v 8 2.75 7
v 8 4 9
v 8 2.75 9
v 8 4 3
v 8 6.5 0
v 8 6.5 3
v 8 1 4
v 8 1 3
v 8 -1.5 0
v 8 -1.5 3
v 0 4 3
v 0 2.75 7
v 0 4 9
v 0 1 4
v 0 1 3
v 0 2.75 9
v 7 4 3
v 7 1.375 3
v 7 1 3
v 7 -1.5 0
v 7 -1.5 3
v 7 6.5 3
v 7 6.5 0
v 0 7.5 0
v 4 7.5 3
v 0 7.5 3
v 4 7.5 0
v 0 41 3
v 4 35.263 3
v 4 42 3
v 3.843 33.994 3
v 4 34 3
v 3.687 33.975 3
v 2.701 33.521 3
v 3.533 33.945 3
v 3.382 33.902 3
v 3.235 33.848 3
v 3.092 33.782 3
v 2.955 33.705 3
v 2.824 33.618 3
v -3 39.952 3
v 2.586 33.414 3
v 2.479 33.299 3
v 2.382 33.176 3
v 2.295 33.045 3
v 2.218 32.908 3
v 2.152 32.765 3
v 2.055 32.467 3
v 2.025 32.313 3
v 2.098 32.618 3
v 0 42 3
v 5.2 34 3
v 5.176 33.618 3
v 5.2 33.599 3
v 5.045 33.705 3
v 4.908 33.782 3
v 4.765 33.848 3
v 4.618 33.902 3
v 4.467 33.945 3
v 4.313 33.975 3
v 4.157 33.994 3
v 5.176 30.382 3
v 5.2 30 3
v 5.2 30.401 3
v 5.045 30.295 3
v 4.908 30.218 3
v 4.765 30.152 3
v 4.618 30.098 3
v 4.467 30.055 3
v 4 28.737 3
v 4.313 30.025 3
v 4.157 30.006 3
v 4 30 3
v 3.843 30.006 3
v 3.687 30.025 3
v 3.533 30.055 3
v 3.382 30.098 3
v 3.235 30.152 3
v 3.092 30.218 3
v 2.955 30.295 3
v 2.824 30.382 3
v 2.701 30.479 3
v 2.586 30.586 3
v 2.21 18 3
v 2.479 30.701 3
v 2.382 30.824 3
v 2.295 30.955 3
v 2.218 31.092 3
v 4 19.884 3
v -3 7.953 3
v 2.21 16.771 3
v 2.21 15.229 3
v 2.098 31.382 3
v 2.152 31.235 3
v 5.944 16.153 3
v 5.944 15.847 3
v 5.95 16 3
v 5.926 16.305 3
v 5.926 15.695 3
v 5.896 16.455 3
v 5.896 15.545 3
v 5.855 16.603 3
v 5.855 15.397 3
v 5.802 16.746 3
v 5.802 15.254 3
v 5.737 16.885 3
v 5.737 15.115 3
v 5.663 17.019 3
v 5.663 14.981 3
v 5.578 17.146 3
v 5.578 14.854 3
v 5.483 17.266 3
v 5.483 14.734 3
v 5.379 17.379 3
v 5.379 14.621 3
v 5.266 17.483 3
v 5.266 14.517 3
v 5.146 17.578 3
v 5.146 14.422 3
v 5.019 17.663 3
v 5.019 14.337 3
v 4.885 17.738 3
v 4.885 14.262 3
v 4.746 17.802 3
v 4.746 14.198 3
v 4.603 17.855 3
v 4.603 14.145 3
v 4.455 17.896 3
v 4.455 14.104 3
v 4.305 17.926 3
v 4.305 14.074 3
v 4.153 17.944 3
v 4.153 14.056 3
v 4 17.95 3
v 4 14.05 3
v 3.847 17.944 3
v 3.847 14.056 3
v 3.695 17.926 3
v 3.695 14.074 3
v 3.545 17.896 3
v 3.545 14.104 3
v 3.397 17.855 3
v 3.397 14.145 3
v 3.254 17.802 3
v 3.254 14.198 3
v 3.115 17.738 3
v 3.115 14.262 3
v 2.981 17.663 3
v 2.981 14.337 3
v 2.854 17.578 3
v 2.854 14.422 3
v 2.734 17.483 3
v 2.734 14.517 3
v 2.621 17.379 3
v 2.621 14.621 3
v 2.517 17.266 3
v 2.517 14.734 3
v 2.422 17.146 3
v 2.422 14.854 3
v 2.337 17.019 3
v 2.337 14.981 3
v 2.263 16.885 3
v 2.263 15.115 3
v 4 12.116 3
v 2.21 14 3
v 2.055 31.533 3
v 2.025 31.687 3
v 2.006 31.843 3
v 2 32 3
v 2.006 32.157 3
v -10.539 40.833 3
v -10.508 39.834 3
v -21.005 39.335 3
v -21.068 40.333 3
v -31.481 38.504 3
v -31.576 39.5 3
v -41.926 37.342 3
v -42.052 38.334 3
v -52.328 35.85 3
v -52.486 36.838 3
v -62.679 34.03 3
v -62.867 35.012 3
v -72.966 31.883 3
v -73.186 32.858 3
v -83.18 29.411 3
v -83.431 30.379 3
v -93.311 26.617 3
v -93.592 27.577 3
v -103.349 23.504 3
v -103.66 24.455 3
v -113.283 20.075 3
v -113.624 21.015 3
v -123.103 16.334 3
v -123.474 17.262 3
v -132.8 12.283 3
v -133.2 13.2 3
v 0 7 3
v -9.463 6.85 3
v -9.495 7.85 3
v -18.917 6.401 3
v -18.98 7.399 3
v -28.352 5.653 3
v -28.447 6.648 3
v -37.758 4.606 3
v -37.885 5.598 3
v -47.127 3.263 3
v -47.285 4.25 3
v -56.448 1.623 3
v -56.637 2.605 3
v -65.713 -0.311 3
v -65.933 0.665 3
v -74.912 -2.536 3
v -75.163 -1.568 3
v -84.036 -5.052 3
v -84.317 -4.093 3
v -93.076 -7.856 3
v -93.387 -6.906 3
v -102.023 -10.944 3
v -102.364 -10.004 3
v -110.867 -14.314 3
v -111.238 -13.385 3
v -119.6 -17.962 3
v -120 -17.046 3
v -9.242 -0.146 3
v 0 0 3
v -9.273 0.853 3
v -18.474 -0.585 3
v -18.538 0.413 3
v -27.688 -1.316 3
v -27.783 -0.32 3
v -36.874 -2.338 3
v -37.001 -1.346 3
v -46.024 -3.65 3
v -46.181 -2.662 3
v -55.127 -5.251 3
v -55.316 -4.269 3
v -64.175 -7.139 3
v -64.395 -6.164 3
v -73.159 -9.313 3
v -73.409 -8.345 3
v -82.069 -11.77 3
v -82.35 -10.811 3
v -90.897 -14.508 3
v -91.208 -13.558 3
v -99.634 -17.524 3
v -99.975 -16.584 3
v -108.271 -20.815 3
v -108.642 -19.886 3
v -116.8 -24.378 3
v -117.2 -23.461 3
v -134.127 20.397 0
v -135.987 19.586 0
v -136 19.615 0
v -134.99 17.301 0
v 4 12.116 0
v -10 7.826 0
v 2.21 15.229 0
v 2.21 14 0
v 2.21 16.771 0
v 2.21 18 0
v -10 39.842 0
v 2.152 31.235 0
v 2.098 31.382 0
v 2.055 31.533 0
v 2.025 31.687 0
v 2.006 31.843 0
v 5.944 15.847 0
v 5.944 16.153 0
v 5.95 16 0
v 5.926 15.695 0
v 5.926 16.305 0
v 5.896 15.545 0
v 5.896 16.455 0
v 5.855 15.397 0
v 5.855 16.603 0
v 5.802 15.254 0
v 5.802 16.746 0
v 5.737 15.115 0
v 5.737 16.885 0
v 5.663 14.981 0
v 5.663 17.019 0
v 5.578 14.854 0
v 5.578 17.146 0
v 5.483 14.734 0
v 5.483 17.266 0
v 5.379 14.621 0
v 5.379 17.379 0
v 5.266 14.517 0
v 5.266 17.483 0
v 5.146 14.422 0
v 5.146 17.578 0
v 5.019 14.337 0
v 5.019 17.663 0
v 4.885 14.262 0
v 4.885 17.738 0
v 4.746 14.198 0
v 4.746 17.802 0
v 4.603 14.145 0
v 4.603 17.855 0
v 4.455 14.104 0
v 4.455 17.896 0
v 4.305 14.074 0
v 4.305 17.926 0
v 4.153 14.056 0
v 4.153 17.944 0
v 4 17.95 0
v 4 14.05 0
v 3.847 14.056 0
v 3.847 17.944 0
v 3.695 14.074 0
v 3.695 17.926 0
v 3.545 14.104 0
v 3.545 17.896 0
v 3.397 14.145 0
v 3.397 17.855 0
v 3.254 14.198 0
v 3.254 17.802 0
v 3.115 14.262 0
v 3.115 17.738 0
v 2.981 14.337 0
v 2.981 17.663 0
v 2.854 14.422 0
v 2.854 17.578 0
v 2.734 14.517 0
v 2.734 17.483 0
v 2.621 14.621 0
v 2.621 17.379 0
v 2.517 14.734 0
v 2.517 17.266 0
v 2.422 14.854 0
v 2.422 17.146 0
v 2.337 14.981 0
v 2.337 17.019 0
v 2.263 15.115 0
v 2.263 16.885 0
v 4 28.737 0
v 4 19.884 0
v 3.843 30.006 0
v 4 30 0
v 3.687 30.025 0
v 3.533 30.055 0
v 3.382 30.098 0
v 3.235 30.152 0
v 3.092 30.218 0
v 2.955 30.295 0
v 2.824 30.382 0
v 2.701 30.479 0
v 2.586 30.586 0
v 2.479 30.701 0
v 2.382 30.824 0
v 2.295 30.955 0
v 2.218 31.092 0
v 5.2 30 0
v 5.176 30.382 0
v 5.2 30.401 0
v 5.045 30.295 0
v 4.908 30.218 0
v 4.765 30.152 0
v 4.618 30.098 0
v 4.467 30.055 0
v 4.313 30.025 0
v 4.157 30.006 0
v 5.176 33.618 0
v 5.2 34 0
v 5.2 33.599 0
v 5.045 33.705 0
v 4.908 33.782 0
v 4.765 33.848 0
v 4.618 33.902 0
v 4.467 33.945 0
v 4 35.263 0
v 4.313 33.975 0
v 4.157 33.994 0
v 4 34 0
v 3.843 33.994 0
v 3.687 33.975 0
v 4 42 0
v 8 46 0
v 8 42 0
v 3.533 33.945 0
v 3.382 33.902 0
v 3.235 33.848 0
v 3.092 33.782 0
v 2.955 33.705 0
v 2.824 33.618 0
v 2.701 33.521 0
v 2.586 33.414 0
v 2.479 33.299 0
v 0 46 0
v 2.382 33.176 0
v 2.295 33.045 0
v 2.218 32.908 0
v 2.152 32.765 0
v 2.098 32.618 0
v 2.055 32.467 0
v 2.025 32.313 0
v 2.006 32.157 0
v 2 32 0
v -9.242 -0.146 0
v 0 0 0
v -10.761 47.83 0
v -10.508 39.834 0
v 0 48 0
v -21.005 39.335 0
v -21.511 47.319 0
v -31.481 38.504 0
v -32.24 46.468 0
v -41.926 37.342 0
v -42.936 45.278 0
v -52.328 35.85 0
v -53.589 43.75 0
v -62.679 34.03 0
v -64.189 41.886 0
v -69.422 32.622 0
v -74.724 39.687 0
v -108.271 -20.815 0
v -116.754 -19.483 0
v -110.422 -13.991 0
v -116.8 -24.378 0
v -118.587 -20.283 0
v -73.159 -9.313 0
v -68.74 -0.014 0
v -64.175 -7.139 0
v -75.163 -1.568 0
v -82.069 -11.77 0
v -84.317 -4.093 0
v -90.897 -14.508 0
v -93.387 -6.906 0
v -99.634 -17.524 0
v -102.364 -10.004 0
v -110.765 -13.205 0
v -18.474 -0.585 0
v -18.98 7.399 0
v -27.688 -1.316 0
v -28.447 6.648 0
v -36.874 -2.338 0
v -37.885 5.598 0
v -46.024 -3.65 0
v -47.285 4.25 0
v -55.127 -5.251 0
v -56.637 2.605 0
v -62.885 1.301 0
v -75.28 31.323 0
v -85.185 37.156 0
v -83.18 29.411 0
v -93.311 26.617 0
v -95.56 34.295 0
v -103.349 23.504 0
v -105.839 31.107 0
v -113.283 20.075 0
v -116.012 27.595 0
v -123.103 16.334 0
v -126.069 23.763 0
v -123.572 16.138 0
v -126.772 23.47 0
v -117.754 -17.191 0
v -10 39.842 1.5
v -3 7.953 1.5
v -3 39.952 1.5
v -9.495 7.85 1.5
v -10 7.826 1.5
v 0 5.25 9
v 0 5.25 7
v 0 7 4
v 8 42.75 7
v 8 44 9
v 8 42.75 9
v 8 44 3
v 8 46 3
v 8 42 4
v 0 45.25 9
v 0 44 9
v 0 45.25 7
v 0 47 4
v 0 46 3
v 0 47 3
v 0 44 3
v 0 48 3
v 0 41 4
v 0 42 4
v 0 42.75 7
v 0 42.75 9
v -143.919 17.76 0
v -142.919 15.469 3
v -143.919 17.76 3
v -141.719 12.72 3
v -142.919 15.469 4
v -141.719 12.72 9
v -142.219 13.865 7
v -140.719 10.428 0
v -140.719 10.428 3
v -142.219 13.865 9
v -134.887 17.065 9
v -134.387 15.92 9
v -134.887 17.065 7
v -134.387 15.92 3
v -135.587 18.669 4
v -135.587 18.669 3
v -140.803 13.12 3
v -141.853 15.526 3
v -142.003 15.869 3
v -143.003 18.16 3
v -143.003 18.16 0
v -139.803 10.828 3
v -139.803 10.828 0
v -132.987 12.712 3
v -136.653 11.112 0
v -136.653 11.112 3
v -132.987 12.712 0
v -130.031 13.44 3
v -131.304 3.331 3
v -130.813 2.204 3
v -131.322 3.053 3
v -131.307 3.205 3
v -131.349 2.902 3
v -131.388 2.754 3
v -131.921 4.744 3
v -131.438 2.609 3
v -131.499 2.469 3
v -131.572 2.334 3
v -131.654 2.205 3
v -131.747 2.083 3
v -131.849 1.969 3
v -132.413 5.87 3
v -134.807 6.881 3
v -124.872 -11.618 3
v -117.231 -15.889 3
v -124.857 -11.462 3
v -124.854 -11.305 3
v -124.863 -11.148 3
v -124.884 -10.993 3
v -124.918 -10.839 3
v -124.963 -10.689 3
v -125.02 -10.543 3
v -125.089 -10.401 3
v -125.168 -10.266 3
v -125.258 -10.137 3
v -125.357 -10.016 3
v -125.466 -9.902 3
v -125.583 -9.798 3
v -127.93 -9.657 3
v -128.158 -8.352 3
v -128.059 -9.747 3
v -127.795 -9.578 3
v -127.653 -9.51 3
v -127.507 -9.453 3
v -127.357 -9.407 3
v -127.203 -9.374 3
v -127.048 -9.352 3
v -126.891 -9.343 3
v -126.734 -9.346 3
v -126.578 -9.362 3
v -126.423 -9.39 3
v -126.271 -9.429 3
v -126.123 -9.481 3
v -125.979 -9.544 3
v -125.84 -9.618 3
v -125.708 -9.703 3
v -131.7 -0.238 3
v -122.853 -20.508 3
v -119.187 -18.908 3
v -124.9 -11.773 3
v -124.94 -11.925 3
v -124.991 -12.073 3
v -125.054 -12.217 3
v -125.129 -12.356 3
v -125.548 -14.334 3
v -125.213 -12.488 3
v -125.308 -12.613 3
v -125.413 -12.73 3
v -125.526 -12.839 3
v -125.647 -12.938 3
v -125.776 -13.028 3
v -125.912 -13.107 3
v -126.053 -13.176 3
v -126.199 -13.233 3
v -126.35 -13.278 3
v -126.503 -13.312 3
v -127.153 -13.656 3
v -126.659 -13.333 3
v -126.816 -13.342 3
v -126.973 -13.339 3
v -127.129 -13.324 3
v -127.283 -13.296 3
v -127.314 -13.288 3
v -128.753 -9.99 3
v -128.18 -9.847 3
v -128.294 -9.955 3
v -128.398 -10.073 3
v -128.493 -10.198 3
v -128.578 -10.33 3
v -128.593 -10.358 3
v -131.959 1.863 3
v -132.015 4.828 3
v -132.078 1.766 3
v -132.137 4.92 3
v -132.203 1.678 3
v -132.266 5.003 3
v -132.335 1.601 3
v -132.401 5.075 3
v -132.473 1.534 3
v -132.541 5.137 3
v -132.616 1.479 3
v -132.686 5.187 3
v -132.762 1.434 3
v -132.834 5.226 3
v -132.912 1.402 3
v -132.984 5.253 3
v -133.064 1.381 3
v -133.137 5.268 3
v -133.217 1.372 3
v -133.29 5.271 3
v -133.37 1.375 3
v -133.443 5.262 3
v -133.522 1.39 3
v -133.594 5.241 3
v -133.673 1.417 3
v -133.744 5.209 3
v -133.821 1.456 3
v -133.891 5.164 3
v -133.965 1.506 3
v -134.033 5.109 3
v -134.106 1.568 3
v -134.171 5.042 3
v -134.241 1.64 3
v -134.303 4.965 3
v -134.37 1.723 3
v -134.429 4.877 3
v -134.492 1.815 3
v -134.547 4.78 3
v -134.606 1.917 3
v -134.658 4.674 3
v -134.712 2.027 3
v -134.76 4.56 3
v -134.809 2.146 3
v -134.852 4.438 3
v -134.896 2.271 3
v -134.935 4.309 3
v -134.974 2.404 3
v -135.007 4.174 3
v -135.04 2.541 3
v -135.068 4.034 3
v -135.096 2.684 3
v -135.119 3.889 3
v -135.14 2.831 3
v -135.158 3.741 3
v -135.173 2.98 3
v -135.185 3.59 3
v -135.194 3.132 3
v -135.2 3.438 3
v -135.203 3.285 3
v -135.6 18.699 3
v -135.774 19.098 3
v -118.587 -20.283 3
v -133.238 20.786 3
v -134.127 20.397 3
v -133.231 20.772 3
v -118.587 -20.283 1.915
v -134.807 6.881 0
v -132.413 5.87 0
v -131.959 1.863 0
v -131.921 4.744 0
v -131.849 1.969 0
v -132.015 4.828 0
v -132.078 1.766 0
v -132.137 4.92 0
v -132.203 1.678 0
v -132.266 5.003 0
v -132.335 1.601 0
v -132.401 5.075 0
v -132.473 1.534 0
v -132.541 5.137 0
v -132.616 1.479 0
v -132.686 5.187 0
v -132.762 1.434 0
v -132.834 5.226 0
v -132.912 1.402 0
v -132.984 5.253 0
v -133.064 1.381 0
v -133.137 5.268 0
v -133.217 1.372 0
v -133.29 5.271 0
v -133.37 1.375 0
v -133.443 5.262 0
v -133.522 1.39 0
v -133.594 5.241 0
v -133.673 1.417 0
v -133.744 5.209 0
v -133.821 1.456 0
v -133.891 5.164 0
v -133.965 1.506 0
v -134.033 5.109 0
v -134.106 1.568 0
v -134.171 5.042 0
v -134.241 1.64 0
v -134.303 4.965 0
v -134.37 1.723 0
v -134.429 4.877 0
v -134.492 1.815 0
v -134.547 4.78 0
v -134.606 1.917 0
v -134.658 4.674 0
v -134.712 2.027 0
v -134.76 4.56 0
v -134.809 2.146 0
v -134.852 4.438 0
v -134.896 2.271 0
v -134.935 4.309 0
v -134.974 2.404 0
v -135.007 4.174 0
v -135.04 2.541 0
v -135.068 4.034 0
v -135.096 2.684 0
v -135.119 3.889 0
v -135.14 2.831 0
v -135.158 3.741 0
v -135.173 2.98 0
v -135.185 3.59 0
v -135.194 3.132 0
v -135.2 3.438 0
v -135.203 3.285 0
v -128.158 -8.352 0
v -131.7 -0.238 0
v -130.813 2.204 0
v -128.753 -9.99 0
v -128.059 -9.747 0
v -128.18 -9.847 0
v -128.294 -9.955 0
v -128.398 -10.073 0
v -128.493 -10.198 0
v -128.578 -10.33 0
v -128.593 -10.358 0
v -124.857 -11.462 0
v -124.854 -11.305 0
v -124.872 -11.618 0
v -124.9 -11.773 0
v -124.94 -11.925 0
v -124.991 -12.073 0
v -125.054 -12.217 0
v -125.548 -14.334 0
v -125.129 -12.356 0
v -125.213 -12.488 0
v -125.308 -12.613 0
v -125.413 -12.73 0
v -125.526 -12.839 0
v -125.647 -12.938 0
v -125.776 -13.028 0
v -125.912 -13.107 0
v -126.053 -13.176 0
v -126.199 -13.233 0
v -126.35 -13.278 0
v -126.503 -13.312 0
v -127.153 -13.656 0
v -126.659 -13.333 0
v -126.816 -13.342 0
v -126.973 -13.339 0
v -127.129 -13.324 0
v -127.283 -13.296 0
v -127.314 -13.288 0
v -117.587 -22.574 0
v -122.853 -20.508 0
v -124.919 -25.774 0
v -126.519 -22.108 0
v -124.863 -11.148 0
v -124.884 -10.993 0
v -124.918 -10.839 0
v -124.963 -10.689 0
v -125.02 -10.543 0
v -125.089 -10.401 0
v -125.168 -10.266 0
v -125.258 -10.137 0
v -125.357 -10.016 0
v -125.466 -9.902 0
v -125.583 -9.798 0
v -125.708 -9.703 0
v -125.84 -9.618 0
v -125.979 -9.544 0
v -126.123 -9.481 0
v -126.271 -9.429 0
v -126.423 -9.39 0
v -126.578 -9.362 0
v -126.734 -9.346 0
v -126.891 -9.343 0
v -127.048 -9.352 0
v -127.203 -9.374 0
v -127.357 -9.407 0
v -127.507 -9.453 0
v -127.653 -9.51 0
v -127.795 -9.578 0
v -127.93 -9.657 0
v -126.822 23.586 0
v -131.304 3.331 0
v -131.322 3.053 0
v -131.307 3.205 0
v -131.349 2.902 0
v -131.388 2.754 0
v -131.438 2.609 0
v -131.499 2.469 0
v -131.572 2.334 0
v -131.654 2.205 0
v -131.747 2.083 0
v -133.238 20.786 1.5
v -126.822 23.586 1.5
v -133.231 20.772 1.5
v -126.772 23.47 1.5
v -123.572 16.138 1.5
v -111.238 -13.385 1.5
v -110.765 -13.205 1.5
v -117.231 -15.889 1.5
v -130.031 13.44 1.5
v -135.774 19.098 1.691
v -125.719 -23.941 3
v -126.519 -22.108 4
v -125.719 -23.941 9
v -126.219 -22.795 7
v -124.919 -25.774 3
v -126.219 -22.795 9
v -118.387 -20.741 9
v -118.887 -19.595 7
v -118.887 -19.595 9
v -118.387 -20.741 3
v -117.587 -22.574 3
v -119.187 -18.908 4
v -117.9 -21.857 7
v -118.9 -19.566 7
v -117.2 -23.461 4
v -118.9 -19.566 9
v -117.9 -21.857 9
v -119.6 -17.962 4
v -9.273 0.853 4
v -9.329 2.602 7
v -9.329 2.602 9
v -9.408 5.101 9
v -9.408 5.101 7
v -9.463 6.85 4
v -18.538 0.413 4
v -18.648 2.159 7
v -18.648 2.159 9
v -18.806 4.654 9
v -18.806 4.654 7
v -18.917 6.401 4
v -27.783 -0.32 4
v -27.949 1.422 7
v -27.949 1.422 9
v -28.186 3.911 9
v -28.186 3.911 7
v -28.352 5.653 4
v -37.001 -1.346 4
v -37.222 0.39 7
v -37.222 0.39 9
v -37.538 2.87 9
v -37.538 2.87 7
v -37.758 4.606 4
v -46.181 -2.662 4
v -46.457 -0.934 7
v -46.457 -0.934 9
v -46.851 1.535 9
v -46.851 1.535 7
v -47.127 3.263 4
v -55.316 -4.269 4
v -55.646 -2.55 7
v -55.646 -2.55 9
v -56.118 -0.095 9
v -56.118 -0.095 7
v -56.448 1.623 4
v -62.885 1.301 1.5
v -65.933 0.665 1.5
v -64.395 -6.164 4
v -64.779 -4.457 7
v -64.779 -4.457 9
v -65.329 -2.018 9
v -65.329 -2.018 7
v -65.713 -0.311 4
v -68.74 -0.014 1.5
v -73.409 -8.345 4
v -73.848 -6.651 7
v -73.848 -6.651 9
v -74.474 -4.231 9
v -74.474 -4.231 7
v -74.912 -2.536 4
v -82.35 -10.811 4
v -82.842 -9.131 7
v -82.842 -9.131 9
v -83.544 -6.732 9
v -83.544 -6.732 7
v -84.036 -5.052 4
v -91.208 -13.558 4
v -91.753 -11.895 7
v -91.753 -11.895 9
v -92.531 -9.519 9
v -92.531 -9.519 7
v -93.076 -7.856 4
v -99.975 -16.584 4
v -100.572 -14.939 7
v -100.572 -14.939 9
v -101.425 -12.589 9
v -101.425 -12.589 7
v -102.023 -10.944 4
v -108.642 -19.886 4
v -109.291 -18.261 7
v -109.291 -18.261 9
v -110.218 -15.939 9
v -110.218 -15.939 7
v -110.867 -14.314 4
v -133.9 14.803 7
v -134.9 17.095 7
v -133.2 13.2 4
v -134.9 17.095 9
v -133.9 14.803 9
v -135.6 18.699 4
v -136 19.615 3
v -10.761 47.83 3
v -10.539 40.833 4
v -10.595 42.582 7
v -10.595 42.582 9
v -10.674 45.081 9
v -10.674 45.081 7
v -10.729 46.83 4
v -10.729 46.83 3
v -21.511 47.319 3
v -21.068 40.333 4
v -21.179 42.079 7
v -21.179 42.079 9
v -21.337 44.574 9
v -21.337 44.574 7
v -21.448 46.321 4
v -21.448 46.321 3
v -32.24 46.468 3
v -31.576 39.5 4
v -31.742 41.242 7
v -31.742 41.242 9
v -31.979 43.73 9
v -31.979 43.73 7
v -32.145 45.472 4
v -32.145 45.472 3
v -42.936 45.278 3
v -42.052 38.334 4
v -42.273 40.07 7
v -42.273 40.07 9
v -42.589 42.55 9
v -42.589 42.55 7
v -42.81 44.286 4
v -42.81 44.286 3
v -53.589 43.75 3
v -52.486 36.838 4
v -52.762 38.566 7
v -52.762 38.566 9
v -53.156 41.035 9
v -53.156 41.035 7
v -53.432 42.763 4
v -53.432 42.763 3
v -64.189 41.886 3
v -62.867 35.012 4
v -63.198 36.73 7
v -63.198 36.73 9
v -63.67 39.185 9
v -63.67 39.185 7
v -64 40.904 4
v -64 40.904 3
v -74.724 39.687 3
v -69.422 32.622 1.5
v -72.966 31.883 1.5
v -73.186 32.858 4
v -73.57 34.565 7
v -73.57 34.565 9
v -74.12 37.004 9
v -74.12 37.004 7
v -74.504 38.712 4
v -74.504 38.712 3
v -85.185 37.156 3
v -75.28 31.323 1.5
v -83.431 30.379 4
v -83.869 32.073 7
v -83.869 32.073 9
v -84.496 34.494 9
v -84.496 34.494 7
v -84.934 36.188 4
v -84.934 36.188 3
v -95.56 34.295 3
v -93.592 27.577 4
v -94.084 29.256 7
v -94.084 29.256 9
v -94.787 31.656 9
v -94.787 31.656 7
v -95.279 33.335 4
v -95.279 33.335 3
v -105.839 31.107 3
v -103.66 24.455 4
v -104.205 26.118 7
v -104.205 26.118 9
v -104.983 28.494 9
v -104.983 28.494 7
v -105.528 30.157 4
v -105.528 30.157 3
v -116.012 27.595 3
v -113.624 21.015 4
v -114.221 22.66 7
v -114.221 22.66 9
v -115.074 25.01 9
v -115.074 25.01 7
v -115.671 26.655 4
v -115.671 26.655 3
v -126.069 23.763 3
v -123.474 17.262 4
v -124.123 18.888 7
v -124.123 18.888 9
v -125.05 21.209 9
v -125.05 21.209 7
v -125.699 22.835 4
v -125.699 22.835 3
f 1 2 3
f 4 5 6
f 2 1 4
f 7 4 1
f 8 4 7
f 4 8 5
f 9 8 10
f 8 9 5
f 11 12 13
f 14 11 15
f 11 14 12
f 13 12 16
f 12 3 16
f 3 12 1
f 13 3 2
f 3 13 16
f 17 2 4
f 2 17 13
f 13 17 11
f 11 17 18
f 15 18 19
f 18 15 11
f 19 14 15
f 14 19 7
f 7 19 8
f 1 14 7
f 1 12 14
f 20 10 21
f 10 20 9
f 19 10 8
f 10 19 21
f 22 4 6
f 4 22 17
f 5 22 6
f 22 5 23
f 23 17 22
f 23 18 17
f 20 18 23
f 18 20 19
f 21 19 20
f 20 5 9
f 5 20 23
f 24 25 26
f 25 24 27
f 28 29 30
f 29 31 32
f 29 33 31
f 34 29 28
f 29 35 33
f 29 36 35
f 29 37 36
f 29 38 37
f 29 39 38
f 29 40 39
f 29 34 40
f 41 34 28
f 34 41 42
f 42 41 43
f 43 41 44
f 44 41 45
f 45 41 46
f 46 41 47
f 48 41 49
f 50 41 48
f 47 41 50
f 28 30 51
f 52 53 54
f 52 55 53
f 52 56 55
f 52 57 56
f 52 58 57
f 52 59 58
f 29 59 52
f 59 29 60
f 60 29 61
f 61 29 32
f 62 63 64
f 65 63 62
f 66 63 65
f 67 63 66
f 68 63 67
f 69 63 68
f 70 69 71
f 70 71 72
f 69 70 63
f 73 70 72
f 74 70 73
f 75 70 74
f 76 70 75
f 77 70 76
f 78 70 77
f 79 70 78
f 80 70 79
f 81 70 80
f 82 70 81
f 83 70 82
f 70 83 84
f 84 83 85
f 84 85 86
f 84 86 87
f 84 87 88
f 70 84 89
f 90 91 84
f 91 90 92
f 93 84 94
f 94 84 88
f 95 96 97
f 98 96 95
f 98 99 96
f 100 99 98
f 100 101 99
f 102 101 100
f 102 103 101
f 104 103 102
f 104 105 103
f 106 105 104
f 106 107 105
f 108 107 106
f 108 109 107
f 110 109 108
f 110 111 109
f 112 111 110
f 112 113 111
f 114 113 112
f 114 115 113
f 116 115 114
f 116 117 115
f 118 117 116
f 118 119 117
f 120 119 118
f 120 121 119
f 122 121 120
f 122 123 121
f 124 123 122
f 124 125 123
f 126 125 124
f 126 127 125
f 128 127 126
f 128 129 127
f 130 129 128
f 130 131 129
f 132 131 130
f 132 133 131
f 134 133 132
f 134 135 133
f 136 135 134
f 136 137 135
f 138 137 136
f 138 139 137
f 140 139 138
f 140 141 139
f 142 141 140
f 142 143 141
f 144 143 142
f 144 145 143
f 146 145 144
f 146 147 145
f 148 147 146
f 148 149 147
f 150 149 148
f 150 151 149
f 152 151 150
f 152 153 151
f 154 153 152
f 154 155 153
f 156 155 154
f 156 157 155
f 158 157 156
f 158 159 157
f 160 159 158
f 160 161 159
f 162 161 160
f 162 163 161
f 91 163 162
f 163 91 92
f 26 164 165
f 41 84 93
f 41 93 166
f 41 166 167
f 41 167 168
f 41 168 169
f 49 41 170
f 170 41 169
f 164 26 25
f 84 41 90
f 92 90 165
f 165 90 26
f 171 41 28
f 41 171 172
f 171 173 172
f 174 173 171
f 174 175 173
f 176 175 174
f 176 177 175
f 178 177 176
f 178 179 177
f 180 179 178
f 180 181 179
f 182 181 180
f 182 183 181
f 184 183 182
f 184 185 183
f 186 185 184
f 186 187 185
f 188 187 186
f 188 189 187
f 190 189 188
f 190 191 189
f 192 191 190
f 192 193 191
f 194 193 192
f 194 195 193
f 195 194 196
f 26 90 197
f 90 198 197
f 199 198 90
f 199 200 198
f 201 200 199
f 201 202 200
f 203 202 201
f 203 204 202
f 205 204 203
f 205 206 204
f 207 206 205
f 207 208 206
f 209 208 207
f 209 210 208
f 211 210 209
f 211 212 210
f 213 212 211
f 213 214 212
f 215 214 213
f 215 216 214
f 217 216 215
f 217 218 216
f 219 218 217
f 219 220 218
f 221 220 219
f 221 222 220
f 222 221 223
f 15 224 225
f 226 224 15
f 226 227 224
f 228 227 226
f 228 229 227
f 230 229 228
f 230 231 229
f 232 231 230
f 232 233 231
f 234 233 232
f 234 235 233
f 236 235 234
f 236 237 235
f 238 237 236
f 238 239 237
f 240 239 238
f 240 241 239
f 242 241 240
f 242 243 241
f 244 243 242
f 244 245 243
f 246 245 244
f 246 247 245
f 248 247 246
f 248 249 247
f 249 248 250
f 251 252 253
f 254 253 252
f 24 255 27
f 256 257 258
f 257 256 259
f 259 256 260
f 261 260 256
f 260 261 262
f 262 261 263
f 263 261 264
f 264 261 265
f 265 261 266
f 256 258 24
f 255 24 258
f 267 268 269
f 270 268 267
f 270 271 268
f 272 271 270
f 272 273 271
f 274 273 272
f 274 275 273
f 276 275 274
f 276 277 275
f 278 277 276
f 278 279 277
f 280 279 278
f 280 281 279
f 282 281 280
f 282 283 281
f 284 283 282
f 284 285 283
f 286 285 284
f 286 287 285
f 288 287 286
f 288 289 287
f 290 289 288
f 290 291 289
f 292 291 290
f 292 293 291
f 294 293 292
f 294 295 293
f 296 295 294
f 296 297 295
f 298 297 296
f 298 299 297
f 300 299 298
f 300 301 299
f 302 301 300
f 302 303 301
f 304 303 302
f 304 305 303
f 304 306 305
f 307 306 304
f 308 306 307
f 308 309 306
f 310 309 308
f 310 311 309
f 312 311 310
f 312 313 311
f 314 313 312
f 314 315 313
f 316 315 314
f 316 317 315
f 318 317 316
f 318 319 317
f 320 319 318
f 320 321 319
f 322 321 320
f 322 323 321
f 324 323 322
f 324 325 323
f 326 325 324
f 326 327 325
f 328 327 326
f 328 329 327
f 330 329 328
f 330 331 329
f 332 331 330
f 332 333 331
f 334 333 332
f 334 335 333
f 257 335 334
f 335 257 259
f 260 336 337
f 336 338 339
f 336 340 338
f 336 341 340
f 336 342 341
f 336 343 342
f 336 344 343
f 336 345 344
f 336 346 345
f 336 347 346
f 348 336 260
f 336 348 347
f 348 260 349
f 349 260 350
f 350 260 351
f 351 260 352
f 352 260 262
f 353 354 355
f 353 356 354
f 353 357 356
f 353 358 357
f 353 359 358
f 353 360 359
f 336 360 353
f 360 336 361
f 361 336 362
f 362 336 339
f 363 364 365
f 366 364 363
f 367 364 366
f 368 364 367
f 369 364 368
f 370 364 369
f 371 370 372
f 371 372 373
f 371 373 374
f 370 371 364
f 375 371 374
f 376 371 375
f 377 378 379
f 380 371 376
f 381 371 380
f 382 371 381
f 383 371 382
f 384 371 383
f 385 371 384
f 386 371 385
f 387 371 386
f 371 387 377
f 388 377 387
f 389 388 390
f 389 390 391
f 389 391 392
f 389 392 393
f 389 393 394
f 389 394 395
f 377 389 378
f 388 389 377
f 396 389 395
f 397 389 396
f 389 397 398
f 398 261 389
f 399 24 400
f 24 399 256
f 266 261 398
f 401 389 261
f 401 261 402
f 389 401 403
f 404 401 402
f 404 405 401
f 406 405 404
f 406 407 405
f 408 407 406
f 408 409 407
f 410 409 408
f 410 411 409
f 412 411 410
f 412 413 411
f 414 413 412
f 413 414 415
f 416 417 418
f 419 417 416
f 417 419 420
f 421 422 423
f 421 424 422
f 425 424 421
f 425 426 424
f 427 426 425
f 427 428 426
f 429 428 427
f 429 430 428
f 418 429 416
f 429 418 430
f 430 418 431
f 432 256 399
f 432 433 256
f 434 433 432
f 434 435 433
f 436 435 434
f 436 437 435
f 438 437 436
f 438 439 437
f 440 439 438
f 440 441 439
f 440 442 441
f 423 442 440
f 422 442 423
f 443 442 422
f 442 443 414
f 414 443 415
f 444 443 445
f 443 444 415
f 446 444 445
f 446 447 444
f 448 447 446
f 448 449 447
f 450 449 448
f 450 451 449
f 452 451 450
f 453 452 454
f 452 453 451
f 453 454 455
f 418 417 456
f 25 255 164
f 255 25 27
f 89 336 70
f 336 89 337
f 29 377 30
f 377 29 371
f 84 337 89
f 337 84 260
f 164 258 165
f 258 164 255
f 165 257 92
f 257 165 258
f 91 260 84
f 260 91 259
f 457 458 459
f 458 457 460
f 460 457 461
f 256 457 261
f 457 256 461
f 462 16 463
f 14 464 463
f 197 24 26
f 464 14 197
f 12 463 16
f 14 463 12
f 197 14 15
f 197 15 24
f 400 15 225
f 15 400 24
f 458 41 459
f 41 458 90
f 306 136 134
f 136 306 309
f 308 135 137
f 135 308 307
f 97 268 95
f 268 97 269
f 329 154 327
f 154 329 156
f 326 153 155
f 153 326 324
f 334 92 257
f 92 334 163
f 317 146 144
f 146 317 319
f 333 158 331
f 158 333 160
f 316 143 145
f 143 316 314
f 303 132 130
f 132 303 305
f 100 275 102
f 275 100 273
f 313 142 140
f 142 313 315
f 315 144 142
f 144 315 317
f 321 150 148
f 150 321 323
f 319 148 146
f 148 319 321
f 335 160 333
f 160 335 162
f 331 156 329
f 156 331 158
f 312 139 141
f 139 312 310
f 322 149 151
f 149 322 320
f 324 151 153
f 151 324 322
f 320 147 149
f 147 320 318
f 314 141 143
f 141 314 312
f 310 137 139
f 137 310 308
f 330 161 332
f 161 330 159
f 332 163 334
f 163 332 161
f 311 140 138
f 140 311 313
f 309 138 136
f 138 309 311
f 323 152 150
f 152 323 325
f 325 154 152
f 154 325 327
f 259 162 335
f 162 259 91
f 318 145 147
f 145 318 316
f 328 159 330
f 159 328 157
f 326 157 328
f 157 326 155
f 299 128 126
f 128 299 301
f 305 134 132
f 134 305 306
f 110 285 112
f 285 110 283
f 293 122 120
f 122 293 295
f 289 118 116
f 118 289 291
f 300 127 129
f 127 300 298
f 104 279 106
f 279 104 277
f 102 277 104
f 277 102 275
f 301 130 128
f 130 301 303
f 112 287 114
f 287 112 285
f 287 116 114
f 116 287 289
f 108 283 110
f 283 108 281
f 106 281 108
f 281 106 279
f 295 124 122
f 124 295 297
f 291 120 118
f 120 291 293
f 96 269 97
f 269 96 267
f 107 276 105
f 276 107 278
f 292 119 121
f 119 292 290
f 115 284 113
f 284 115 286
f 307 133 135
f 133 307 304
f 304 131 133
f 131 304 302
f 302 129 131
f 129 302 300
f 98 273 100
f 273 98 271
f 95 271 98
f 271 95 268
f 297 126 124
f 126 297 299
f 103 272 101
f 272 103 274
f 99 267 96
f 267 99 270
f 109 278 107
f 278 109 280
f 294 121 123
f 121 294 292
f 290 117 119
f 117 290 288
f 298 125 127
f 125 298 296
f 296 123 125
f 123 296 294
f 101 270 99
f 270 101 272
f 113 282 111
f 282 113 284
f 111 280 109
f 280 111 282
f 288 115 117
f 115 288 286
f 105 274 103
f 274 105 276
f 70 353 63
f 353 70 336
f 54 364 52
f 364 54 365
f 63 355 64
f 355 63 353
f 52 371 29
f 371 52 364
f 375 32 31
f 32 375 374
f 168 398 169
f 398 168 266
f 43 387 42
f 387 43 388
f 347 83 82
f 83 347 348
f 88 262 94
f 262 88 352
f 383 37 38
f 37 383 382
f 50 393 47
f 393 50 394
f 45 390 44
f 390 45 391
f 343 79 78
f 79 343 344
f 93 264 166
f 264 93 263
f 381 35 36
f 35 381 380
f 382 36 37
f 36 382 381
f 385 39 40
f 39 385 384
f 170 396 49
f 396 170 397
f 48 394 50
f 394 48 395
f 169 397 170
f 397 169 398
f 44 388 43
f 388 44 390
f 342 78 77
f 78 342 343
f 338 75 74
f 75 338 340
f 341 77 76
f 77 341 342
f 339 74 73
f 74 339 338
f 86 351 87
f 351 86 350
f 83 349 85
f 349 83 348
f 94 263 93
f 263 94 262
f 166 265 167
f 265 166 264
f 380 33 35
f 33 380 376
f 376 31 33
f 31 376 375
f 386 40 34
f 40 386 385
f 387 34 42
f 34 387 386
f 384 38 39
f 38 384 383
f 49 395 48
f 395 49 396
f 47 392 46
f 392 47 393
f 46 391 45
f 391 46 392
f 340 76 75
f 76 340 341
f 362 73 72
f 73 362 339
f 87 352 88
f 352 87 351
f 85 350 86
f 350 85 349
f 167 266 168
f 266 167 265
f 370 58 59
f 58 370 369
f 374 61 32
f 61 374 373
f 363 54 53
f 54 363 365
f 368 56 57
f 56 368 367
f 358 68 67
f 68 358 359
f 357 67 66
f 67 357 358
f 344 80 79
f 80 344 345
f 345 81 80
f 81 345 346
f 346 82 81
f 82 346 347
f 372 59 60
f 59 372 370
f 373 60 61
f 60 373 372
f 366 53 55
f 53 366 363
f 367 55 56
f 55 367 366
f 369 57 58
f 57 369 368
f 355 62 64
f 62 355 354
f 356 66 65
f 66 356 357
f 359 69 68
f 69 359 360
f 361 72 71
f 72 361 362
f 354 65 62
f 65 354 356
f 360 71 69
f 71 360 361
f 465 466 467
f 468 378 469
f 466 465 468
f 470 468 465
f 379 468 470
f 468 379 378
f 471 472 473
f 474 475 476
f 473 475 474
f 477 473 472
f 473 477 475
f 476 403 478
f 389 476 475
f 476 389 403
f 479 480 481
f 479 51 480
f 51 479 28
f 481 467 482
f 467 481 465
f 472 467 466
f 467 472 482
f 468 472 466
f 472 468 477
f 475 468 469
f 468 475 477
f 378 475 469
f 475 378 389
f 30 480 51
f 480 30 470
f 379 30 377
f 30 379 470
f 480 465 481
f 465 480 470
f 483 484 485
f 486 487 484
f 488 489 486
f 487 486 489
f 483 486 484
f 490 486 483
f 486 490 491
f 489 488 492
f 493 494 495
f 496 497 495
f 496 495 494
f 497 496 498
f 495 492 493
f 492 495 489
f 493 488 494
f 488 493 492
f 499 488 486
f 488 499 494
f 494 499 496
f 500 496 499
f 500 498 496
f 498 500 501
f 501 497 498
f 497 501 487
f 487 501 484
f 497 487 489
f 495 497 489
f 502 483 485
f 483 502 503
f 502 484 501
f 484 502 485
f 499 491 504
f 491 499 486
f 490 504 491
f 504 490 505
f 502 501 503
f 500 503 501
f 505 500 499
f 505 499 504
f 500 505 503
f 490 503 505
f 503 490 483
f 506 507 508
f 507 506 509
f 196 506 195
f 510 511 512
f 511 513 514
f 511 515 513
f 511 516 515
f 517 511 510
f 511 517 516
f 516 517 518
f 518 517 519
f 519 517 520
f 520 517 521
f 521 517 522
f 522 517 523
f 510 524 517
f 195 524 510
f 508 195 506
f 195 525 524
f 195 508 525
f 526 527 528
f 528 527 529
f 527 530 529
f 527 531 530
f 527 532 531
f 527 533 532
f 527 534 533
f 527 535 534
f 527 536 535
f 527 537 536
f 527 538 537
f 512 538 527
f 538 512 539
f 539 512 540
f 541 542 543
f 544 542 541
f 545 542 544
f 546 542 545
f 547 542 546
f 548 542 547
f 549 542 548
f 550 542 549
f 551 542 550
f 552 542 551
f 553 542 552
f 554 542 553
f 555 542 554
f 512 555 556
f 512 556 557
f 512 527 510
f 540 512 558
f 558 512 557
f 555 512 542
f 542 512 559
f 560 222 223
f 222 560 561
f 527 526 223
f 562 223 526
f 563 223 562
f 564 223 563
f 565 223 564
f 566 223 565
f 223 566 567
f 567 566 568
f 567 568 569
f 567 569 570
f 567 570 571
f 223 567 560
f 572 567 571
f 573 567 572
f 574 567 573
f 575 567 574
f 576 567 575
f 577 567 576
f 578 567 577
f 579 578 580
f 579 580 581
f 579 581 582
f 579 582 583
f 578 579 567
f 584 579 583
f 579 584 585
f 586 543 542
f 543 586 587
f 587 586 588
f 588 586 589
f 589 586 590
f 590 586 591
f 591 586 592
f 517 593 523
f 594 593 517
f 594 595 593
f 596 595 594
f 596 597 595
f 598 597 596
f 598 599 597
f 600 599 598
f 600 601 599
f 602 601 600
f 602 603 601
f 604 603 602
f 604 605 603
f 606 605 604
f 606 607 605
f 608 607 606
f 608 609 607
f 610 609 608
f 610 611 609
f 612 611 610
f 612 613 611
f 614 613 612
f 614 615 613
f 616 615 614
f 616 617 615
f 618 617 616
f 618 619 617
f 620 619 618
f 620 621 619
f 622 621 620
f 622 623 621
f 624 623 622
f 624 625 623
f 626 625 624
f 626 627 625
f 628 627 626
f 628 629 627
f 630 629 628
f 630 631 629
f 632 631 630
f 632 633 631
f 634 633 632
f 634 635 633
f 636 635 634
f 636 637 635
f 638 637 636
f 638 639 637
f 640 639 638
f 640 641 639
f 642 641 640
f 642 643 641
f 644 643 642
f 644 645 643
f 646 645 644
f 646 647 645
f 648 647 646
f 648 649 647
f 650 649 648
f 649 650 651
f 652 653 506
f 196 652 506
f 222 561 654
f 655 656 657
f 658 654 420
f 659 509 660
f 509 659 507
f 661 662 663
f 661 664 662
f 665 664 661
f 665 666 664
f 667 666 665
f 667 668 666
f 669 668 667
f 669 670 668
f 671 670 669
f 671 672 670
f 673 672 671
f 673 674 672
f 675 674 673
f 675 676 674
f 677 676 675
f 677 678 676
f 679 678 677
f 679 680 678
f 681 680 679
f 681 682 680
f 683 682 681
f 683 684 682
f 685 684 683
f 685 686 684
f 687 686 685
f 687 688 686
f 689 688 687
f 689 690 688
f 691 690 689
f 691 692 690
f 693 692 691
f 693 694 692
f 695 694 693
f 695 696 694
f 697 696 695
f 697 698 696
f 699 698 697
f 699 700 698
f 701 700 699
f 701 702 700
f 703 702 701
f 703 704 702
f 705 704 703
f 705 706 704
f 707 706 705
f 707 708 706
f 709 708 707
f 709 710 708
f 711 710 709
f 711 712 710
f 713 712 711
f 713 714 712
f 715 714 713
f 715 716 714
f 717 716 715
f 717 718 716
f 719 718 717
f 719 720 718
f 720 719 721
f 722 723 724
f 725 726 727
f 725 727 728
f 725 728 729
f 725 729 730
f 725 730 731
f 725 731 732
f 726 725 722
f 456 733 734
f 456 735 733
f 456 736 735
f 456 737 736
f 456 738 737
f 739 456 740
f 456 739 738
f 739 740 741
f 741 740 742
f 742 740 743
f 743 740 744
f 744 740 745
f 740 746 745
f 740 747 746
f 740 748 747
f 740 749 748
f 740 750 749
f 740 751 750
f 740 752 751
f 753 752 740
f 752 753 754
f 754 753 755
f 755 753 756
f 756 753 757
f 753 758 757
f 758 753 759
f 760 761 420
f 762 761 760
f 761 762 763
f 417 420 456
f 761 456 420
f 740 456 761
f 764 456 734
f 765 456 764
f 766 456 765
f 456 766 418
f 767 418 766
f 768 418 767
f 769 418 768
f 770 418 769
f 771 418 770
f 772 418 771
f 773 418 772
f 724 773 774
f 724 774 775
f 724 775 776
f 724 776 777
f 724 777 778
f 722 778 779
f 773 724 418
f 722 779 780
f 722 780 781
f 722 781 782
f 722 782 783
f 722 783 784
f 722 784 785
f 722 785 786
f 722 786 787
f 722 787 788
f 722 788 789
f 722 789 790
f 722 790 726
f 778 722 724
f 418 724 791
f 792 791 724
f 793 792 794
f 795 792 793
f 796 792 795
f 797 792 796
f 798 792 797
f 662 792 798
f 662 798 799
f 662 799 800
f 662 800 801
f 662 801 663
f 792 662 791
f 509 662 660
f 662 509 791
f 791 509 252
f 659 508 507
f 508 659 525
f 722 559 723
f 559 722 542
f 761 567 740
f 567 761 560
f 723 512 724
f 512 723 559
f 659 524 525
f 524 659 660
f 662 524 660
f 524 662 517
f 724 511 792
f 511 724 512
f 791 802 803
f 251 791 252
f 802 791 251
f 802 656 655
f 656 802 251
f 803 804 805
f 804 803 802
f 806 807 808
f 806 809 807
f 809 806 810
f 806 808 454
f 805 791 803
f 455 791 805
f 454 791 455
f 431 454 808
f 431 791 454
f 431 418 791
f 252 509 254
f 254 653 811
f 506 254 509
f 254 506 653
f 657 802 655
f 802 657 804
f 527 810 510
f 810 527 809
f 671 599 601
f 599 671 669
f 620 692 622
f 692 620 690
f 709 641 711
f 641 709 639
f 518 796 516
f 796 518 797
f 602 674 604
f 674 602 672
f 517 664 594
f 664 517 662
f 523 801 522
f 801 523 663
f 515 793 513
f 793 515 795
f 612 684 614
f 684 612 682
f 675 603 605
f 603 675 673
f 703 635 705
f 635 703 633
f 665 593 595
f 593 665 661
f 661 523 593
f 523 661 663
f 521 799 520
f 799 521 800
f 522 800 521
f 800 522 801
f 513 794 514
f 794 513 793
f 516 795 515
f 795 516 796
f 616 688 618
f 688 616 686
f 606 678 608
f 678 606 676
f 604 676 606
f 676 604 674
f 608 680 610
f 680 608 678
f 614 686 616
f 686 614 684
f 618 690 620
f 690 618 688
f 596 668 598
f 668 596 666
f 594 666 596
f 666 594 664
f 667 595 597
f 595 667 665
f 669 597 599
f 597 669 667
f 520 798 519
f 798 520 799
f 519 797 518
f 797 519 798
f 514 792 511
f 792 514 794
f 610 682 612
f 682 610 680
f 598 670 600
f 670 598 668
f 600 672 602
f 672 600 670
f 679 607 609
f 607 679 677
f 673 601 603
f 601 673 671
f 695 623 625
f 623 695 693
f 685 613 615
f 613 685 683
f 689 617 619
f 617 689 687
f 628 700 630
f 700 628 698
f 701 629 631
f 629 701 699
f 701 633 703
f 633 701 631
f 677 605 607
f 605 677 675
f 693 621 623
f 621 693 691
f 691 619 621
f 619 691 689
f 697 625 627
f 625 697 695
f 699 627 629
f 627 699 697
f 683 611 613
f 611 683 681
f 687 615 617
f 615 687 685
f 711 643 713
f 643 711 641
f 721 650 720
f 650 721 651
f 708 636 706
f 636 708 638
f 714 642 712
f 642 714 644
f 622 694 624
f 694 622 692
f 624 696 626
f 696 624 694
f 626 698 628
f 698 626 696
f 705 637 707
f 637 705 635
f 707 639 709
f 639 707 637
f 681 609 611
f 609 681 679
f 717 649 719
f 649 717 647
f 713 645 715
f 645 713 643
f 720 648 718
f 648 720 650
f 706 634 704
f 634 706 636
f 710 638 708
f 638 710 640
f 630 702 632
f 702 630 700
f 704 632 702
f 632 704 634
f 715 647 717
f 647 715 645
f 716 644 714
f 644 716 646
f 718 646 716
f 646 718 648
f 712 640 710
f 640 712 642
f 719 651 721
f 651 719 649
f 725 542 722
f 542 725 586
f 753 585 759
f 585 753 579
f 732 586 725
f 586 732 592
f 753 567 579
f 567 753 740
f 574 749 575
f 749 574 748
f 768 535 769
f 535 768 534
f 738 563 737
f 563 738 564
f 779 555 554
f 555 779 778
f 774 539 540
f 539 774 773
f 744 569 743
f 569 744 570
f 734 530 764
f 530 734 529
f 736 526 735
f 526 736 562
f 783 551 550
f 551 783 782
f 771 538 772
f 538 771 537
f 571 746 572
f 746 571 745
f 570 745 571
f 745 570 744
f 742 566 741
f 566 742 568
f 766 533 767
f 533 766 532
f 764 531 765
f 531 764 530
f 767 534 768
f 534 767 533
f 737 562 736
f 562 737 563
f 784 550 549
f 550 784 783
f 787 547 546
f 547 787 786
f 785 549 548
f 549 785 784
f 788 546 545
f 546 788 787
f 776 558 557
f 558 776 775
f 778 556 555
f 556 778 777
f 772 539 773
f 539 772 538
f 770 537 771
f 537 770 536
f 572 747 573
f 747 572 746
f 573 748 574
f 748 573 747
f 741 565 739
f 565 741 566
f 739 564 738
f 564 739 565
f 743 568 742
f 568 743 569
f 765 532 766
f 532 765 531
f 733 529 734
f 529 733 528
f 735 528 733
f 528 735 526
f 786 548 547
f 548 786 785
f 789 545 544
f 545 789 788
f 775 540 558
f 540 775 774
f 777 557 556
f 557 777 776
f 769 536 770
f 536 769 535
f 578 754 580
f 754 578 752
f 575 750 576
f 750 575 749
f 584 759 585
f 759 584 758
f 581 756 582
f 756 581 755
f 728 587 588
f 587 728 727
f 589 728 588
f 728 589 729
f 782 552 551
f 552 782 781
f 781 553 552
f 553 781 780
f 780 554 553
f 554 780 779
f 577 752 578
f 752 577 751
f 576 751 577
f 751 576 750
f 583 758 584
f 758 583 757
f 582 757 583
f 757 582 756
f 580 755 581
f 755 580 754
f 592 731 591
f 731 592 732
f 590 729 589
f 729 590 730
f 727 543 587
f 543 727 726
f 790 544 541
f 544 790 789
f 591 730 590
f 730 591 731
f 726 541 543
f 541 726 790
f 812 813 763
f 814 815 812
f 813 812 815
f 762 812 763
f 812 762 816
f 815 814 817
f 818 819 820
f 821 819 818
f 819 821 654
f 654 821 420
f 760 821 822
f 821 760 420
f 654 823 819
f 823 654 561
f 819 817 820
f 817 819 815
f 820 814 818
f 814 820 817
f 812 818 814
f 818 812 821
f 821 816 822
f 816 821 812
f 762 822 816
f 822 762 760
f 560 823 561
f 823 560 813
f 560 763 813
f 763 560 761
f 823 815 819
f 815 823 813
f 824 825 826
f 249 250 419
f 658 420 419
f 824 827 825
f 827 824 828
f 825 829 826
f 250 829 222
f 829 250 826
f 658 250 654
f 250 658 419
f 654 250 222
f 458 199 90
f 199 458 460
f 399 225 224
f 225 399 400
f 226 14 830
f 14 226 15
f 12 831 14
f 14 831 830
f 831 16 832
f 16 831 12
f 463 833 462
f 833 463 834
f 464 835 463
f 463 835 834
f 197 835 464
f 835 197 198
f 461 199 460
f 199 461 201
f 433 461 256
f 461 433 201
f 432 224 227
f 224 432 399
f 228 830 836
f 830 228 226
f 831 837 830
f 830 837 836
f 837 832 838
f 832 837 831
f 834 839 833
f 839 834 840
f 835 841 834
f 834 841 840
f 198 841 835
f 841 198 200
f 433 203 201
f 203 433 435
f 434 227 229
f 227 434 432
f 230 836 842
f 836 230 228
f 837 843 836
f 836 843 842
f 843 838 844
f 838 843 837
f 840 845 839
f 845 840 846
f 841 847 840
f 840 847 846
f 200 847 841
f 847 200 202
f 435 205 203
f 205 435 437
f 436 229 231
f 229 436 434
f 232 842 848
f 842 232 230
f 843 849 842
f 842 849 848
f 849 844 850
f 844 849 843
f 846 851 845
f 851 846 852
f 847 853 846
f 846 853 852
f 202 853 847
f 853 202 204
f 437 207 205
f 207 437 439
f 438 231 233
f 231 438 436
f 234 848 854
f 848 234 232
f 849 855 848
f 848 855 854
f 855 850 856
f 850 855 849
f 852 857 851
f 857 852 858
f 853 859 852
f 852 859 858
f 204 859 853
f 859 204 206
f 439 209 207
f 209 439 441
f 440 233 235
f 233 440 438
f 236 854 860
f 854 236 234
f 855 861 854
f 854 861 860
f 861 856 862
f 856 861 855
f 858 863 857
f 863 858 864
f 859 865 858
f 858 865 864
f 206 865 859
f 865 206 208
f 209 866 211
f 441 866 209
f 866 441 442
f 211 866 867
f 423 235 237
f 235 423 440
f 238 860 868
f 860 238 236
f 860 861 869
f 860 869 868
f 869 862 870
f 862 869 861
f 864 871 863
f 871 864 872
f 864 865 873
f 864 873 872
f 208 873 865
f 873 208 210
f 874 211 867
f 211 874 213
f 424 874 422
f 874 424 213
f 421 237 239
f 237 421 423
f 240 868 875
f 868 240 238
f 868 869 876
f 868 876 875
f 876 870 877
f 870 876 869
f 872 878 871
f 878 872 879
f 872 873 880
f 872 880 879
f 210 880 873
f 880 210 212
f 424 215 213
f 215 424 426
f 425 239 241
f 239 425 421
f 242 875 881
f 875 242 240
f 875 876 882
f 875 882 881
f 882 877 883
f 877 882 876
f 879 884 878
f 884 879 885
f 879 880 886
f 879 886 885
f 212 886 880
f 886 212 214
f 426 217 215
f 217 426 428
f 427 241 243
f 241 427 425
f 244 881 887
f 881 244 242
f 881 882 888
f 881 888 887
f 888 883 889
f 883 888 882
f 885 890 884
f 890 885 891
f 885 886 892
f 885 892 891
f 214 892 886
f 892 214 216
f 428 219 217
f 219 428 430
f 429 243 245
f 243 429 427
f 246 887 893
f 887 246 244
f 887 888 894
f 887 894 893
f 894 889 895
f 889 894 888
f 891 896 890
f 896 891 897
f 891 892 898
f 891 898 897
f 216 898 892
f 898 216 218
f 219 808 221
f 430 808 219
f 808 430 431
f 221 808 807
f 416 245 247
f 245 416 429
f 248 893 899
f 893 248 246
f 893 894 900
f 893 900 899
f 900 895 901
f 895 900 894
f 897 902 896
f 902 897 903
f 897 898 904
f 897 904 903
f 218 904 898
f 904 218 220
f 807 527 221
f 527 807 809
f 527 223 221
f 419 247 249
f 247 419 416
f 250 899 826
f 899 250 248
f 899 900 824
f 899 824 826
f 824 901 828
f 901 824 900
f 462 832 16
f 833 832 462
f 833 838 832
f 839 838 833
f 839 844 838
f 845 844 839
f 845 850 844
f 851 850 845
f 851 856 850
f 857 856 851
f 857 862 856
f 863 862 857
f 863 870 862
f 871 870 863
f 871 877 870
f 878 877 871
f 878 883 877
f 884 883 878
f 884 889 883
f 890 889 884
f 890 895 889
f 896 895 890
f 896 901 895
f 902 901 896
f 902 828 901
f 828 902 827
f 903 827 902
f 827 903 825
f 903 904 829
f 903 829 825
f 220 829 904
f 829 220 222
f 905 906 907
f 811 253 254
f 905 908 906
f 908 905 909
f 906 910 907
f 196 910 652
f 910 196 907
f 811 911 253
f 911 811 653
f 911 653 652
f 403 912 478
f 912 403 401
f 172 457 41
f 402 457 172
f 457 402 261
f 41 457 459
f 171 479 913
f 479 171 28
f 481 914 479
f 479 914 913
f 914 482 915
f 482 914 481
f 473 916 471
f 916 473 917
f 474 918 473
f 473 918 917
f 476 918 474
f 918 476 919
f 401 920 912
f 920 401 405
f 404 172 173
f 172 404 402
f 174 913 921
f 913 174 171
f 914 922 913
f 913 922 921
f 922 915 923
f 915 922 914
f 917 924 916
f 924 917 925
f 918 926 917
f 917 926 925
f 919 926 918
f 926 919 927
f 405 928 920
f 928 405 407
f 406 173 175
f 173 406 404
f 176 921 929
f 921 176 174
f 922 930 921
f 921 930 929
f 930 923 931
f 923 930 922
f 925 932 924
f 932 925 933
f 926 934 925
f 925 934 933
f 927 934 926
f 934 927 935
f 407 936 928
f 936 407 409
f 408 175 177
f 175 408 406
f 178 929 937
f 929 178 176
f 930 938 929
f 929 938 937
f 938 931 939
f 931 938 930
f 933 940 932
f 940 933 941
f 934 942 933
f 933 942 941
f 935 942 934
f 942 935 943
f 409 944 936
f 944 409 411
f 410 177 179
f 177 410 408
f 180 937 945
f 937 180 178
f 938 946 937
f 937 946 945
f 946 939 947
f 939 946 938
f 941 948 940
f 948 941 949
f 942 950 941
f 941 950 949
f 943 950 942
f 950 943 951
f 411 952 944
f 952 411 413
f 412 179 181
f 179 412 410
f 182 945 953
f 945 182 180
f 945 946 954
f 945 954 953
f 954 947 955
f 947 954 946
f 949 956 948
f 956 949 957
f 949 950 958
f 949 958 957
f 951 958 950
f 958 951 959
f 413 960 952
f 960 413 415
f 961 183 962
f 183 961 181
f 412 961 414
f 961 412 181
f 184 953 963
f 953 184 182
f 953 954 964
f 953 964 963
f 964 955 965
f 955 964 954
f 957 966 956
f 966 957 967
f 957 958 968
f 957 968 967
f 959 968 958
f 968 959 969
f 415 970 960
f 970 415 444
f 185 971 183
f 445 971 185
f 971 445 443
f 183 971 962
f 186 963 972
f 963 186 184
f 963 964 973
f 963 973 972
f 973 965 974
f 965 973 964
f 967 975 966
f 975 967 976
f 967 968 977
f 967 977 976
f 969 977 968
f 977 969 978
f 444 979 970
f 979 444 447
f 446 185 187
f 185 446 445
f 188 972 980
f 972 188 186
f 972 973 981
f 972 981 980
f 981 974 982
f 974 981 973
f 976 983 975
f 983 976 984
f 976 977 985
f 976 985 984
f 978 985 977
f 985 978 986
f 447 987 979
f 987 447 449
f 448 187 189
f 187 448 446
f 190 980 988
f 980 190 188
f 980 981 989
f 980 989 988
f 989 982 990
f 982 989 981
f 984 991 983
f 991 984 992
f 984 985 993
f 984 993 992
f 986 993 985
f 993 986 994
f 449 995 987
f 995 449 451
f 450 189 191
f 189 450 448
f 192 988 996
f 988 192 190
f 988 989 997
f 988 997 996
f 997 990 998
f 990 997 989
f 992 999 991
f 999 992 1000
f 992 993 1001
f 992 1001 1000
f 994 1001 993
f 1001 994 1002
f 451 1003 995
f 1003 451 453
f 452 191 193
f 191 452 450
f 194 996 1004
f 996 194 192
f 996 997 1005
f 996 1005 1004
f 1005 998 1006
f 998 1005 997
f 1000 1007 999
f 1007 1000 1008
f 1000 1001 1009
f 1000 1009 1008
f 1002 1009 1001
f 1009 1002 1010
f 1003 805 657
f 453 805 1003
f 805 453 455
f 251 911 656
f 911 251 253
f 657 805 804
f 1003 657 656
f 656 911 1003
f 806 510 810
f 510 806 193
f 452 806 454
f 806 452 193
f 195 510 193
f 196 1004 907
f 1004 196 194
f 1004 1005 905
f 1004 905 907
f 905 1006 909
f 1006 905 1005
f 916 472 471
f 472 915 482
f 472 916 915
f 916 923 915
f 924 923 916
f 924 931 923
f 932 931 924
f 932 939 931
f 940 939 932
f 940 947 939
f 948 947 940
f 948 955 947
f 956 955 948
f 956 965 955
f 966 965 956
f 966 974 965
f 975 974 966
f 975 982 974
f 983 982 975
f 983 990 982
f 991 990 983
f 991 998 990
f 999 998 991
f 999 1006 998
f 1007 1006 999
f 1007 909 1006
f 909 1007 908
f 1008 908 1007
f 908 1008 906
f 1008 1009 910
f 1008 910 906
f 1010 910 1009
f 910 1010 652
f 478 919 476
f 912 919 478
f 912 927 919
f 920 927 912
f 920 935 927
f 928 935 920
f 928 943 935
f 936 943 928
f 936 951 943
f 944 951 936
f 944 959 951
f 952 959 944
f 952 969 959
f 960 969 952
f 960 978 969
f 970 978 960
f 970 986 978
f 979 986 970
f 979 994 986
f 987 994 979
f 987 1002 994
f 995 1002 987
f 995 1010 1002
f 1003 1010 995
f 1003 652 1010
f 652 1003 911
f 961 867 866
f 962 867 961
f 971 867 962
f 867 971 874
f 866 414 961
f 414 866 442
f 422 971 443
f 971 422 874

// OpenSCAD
length = 120;
diameter = 300;

module rail_main(length) {
    poly = [[0,0],[0,8],[3,8],[3,7],[4,7],[7,5.25],[9,5.25],[9,2.75],[7,2.75],[4,1],[3,1],[3,0]];
    rotate([90,-90,180]) linear_extrude(length) polygon(poly);
}

module rail_curved(angle, diameter) {
    poly = [[0,0],[0,8],[3,8],[3,7],[4,7],[7,5.25],[9,5.25],[9,2.75],[7,2.75],[4,1],[3,1],[3,0]];
    translate([-diameter+8,0,0])
    rotate_extrude(angle = angle, $fn = 200)
    translate([diameter,0,0])
    rotate([0,0,90]) 
    polygon(poly);
}

module rail_endpoint_right() {
    poly = [[0,2],[0,6],[3,6],[3,4],[9,4],[9,2.75],[7,2.75],[4,2],[3,2]];
    rotate([90,-90,180]) linear_extrude(8) polygon(poly);
}

module rail_endpoint_left() {
    poly = [[3,8],[3,4],[9,4],[9,2.75],[7,2.75],[4,1],[3,1]];
    rotate([90,-90,180]) linear_extrude(8) polygon(poly);
    // support
    translate([-1.5,0,0]) cube([8,1,3], false);
}

module attach_poly(h) {
    linear_extrude(h) polygon([[0,0],[2,1.9],[6,1.9],[8,0]]);
}

module attach(l) {
    difference() {
        union() {
            cube([41,l,1.5], false);
            cube([41,3,3], false);
            difference() {
                translate ([7.5,-4,0]) cube([36,6,3], false);
                translate ([12,-4.11,-0.5]) attach_poly(4);
            }
            translate ([16,-4,0]) cylinder(3,1.95,1.95,false, $fn = 80);
            translate ([28,-3.3,0]) mirror([0,1,0]) attach_poly(3);
        }
        translate ([32,-4,-0.5]) cylinder(4,2,2,false, $fn = 80);
    }
}

module full_endpoint() {
    translate([0,-8,0]) rail_endpoint_left();
    translate([40,-8,0]) rail_endpoint_right();
    attach(10);
}

module barreau() {
    translate([8,0,0]) cube([36,6,1.5], false);
}

module main() {

    angle = asin(length/diameter);
    rail_curved(angle, diameter);
    translate([40,0,0]) rail_curved(angle, diameter+40);
    
    full_endpoint();

    translate([-diameter,0,0]) 
    rotate([0,0,angle]) 
    translate([diameter+47.3,-3.2,0]) rotate([180,180,0]) full_endpoint();

    translate([-diameter,0,0]) 
    rotate([0,0,angle/2]) 
    translate([diameter-2,0,0]) barreau();
}

rotate([0,0,90]) main();


//rail_curved(length);
